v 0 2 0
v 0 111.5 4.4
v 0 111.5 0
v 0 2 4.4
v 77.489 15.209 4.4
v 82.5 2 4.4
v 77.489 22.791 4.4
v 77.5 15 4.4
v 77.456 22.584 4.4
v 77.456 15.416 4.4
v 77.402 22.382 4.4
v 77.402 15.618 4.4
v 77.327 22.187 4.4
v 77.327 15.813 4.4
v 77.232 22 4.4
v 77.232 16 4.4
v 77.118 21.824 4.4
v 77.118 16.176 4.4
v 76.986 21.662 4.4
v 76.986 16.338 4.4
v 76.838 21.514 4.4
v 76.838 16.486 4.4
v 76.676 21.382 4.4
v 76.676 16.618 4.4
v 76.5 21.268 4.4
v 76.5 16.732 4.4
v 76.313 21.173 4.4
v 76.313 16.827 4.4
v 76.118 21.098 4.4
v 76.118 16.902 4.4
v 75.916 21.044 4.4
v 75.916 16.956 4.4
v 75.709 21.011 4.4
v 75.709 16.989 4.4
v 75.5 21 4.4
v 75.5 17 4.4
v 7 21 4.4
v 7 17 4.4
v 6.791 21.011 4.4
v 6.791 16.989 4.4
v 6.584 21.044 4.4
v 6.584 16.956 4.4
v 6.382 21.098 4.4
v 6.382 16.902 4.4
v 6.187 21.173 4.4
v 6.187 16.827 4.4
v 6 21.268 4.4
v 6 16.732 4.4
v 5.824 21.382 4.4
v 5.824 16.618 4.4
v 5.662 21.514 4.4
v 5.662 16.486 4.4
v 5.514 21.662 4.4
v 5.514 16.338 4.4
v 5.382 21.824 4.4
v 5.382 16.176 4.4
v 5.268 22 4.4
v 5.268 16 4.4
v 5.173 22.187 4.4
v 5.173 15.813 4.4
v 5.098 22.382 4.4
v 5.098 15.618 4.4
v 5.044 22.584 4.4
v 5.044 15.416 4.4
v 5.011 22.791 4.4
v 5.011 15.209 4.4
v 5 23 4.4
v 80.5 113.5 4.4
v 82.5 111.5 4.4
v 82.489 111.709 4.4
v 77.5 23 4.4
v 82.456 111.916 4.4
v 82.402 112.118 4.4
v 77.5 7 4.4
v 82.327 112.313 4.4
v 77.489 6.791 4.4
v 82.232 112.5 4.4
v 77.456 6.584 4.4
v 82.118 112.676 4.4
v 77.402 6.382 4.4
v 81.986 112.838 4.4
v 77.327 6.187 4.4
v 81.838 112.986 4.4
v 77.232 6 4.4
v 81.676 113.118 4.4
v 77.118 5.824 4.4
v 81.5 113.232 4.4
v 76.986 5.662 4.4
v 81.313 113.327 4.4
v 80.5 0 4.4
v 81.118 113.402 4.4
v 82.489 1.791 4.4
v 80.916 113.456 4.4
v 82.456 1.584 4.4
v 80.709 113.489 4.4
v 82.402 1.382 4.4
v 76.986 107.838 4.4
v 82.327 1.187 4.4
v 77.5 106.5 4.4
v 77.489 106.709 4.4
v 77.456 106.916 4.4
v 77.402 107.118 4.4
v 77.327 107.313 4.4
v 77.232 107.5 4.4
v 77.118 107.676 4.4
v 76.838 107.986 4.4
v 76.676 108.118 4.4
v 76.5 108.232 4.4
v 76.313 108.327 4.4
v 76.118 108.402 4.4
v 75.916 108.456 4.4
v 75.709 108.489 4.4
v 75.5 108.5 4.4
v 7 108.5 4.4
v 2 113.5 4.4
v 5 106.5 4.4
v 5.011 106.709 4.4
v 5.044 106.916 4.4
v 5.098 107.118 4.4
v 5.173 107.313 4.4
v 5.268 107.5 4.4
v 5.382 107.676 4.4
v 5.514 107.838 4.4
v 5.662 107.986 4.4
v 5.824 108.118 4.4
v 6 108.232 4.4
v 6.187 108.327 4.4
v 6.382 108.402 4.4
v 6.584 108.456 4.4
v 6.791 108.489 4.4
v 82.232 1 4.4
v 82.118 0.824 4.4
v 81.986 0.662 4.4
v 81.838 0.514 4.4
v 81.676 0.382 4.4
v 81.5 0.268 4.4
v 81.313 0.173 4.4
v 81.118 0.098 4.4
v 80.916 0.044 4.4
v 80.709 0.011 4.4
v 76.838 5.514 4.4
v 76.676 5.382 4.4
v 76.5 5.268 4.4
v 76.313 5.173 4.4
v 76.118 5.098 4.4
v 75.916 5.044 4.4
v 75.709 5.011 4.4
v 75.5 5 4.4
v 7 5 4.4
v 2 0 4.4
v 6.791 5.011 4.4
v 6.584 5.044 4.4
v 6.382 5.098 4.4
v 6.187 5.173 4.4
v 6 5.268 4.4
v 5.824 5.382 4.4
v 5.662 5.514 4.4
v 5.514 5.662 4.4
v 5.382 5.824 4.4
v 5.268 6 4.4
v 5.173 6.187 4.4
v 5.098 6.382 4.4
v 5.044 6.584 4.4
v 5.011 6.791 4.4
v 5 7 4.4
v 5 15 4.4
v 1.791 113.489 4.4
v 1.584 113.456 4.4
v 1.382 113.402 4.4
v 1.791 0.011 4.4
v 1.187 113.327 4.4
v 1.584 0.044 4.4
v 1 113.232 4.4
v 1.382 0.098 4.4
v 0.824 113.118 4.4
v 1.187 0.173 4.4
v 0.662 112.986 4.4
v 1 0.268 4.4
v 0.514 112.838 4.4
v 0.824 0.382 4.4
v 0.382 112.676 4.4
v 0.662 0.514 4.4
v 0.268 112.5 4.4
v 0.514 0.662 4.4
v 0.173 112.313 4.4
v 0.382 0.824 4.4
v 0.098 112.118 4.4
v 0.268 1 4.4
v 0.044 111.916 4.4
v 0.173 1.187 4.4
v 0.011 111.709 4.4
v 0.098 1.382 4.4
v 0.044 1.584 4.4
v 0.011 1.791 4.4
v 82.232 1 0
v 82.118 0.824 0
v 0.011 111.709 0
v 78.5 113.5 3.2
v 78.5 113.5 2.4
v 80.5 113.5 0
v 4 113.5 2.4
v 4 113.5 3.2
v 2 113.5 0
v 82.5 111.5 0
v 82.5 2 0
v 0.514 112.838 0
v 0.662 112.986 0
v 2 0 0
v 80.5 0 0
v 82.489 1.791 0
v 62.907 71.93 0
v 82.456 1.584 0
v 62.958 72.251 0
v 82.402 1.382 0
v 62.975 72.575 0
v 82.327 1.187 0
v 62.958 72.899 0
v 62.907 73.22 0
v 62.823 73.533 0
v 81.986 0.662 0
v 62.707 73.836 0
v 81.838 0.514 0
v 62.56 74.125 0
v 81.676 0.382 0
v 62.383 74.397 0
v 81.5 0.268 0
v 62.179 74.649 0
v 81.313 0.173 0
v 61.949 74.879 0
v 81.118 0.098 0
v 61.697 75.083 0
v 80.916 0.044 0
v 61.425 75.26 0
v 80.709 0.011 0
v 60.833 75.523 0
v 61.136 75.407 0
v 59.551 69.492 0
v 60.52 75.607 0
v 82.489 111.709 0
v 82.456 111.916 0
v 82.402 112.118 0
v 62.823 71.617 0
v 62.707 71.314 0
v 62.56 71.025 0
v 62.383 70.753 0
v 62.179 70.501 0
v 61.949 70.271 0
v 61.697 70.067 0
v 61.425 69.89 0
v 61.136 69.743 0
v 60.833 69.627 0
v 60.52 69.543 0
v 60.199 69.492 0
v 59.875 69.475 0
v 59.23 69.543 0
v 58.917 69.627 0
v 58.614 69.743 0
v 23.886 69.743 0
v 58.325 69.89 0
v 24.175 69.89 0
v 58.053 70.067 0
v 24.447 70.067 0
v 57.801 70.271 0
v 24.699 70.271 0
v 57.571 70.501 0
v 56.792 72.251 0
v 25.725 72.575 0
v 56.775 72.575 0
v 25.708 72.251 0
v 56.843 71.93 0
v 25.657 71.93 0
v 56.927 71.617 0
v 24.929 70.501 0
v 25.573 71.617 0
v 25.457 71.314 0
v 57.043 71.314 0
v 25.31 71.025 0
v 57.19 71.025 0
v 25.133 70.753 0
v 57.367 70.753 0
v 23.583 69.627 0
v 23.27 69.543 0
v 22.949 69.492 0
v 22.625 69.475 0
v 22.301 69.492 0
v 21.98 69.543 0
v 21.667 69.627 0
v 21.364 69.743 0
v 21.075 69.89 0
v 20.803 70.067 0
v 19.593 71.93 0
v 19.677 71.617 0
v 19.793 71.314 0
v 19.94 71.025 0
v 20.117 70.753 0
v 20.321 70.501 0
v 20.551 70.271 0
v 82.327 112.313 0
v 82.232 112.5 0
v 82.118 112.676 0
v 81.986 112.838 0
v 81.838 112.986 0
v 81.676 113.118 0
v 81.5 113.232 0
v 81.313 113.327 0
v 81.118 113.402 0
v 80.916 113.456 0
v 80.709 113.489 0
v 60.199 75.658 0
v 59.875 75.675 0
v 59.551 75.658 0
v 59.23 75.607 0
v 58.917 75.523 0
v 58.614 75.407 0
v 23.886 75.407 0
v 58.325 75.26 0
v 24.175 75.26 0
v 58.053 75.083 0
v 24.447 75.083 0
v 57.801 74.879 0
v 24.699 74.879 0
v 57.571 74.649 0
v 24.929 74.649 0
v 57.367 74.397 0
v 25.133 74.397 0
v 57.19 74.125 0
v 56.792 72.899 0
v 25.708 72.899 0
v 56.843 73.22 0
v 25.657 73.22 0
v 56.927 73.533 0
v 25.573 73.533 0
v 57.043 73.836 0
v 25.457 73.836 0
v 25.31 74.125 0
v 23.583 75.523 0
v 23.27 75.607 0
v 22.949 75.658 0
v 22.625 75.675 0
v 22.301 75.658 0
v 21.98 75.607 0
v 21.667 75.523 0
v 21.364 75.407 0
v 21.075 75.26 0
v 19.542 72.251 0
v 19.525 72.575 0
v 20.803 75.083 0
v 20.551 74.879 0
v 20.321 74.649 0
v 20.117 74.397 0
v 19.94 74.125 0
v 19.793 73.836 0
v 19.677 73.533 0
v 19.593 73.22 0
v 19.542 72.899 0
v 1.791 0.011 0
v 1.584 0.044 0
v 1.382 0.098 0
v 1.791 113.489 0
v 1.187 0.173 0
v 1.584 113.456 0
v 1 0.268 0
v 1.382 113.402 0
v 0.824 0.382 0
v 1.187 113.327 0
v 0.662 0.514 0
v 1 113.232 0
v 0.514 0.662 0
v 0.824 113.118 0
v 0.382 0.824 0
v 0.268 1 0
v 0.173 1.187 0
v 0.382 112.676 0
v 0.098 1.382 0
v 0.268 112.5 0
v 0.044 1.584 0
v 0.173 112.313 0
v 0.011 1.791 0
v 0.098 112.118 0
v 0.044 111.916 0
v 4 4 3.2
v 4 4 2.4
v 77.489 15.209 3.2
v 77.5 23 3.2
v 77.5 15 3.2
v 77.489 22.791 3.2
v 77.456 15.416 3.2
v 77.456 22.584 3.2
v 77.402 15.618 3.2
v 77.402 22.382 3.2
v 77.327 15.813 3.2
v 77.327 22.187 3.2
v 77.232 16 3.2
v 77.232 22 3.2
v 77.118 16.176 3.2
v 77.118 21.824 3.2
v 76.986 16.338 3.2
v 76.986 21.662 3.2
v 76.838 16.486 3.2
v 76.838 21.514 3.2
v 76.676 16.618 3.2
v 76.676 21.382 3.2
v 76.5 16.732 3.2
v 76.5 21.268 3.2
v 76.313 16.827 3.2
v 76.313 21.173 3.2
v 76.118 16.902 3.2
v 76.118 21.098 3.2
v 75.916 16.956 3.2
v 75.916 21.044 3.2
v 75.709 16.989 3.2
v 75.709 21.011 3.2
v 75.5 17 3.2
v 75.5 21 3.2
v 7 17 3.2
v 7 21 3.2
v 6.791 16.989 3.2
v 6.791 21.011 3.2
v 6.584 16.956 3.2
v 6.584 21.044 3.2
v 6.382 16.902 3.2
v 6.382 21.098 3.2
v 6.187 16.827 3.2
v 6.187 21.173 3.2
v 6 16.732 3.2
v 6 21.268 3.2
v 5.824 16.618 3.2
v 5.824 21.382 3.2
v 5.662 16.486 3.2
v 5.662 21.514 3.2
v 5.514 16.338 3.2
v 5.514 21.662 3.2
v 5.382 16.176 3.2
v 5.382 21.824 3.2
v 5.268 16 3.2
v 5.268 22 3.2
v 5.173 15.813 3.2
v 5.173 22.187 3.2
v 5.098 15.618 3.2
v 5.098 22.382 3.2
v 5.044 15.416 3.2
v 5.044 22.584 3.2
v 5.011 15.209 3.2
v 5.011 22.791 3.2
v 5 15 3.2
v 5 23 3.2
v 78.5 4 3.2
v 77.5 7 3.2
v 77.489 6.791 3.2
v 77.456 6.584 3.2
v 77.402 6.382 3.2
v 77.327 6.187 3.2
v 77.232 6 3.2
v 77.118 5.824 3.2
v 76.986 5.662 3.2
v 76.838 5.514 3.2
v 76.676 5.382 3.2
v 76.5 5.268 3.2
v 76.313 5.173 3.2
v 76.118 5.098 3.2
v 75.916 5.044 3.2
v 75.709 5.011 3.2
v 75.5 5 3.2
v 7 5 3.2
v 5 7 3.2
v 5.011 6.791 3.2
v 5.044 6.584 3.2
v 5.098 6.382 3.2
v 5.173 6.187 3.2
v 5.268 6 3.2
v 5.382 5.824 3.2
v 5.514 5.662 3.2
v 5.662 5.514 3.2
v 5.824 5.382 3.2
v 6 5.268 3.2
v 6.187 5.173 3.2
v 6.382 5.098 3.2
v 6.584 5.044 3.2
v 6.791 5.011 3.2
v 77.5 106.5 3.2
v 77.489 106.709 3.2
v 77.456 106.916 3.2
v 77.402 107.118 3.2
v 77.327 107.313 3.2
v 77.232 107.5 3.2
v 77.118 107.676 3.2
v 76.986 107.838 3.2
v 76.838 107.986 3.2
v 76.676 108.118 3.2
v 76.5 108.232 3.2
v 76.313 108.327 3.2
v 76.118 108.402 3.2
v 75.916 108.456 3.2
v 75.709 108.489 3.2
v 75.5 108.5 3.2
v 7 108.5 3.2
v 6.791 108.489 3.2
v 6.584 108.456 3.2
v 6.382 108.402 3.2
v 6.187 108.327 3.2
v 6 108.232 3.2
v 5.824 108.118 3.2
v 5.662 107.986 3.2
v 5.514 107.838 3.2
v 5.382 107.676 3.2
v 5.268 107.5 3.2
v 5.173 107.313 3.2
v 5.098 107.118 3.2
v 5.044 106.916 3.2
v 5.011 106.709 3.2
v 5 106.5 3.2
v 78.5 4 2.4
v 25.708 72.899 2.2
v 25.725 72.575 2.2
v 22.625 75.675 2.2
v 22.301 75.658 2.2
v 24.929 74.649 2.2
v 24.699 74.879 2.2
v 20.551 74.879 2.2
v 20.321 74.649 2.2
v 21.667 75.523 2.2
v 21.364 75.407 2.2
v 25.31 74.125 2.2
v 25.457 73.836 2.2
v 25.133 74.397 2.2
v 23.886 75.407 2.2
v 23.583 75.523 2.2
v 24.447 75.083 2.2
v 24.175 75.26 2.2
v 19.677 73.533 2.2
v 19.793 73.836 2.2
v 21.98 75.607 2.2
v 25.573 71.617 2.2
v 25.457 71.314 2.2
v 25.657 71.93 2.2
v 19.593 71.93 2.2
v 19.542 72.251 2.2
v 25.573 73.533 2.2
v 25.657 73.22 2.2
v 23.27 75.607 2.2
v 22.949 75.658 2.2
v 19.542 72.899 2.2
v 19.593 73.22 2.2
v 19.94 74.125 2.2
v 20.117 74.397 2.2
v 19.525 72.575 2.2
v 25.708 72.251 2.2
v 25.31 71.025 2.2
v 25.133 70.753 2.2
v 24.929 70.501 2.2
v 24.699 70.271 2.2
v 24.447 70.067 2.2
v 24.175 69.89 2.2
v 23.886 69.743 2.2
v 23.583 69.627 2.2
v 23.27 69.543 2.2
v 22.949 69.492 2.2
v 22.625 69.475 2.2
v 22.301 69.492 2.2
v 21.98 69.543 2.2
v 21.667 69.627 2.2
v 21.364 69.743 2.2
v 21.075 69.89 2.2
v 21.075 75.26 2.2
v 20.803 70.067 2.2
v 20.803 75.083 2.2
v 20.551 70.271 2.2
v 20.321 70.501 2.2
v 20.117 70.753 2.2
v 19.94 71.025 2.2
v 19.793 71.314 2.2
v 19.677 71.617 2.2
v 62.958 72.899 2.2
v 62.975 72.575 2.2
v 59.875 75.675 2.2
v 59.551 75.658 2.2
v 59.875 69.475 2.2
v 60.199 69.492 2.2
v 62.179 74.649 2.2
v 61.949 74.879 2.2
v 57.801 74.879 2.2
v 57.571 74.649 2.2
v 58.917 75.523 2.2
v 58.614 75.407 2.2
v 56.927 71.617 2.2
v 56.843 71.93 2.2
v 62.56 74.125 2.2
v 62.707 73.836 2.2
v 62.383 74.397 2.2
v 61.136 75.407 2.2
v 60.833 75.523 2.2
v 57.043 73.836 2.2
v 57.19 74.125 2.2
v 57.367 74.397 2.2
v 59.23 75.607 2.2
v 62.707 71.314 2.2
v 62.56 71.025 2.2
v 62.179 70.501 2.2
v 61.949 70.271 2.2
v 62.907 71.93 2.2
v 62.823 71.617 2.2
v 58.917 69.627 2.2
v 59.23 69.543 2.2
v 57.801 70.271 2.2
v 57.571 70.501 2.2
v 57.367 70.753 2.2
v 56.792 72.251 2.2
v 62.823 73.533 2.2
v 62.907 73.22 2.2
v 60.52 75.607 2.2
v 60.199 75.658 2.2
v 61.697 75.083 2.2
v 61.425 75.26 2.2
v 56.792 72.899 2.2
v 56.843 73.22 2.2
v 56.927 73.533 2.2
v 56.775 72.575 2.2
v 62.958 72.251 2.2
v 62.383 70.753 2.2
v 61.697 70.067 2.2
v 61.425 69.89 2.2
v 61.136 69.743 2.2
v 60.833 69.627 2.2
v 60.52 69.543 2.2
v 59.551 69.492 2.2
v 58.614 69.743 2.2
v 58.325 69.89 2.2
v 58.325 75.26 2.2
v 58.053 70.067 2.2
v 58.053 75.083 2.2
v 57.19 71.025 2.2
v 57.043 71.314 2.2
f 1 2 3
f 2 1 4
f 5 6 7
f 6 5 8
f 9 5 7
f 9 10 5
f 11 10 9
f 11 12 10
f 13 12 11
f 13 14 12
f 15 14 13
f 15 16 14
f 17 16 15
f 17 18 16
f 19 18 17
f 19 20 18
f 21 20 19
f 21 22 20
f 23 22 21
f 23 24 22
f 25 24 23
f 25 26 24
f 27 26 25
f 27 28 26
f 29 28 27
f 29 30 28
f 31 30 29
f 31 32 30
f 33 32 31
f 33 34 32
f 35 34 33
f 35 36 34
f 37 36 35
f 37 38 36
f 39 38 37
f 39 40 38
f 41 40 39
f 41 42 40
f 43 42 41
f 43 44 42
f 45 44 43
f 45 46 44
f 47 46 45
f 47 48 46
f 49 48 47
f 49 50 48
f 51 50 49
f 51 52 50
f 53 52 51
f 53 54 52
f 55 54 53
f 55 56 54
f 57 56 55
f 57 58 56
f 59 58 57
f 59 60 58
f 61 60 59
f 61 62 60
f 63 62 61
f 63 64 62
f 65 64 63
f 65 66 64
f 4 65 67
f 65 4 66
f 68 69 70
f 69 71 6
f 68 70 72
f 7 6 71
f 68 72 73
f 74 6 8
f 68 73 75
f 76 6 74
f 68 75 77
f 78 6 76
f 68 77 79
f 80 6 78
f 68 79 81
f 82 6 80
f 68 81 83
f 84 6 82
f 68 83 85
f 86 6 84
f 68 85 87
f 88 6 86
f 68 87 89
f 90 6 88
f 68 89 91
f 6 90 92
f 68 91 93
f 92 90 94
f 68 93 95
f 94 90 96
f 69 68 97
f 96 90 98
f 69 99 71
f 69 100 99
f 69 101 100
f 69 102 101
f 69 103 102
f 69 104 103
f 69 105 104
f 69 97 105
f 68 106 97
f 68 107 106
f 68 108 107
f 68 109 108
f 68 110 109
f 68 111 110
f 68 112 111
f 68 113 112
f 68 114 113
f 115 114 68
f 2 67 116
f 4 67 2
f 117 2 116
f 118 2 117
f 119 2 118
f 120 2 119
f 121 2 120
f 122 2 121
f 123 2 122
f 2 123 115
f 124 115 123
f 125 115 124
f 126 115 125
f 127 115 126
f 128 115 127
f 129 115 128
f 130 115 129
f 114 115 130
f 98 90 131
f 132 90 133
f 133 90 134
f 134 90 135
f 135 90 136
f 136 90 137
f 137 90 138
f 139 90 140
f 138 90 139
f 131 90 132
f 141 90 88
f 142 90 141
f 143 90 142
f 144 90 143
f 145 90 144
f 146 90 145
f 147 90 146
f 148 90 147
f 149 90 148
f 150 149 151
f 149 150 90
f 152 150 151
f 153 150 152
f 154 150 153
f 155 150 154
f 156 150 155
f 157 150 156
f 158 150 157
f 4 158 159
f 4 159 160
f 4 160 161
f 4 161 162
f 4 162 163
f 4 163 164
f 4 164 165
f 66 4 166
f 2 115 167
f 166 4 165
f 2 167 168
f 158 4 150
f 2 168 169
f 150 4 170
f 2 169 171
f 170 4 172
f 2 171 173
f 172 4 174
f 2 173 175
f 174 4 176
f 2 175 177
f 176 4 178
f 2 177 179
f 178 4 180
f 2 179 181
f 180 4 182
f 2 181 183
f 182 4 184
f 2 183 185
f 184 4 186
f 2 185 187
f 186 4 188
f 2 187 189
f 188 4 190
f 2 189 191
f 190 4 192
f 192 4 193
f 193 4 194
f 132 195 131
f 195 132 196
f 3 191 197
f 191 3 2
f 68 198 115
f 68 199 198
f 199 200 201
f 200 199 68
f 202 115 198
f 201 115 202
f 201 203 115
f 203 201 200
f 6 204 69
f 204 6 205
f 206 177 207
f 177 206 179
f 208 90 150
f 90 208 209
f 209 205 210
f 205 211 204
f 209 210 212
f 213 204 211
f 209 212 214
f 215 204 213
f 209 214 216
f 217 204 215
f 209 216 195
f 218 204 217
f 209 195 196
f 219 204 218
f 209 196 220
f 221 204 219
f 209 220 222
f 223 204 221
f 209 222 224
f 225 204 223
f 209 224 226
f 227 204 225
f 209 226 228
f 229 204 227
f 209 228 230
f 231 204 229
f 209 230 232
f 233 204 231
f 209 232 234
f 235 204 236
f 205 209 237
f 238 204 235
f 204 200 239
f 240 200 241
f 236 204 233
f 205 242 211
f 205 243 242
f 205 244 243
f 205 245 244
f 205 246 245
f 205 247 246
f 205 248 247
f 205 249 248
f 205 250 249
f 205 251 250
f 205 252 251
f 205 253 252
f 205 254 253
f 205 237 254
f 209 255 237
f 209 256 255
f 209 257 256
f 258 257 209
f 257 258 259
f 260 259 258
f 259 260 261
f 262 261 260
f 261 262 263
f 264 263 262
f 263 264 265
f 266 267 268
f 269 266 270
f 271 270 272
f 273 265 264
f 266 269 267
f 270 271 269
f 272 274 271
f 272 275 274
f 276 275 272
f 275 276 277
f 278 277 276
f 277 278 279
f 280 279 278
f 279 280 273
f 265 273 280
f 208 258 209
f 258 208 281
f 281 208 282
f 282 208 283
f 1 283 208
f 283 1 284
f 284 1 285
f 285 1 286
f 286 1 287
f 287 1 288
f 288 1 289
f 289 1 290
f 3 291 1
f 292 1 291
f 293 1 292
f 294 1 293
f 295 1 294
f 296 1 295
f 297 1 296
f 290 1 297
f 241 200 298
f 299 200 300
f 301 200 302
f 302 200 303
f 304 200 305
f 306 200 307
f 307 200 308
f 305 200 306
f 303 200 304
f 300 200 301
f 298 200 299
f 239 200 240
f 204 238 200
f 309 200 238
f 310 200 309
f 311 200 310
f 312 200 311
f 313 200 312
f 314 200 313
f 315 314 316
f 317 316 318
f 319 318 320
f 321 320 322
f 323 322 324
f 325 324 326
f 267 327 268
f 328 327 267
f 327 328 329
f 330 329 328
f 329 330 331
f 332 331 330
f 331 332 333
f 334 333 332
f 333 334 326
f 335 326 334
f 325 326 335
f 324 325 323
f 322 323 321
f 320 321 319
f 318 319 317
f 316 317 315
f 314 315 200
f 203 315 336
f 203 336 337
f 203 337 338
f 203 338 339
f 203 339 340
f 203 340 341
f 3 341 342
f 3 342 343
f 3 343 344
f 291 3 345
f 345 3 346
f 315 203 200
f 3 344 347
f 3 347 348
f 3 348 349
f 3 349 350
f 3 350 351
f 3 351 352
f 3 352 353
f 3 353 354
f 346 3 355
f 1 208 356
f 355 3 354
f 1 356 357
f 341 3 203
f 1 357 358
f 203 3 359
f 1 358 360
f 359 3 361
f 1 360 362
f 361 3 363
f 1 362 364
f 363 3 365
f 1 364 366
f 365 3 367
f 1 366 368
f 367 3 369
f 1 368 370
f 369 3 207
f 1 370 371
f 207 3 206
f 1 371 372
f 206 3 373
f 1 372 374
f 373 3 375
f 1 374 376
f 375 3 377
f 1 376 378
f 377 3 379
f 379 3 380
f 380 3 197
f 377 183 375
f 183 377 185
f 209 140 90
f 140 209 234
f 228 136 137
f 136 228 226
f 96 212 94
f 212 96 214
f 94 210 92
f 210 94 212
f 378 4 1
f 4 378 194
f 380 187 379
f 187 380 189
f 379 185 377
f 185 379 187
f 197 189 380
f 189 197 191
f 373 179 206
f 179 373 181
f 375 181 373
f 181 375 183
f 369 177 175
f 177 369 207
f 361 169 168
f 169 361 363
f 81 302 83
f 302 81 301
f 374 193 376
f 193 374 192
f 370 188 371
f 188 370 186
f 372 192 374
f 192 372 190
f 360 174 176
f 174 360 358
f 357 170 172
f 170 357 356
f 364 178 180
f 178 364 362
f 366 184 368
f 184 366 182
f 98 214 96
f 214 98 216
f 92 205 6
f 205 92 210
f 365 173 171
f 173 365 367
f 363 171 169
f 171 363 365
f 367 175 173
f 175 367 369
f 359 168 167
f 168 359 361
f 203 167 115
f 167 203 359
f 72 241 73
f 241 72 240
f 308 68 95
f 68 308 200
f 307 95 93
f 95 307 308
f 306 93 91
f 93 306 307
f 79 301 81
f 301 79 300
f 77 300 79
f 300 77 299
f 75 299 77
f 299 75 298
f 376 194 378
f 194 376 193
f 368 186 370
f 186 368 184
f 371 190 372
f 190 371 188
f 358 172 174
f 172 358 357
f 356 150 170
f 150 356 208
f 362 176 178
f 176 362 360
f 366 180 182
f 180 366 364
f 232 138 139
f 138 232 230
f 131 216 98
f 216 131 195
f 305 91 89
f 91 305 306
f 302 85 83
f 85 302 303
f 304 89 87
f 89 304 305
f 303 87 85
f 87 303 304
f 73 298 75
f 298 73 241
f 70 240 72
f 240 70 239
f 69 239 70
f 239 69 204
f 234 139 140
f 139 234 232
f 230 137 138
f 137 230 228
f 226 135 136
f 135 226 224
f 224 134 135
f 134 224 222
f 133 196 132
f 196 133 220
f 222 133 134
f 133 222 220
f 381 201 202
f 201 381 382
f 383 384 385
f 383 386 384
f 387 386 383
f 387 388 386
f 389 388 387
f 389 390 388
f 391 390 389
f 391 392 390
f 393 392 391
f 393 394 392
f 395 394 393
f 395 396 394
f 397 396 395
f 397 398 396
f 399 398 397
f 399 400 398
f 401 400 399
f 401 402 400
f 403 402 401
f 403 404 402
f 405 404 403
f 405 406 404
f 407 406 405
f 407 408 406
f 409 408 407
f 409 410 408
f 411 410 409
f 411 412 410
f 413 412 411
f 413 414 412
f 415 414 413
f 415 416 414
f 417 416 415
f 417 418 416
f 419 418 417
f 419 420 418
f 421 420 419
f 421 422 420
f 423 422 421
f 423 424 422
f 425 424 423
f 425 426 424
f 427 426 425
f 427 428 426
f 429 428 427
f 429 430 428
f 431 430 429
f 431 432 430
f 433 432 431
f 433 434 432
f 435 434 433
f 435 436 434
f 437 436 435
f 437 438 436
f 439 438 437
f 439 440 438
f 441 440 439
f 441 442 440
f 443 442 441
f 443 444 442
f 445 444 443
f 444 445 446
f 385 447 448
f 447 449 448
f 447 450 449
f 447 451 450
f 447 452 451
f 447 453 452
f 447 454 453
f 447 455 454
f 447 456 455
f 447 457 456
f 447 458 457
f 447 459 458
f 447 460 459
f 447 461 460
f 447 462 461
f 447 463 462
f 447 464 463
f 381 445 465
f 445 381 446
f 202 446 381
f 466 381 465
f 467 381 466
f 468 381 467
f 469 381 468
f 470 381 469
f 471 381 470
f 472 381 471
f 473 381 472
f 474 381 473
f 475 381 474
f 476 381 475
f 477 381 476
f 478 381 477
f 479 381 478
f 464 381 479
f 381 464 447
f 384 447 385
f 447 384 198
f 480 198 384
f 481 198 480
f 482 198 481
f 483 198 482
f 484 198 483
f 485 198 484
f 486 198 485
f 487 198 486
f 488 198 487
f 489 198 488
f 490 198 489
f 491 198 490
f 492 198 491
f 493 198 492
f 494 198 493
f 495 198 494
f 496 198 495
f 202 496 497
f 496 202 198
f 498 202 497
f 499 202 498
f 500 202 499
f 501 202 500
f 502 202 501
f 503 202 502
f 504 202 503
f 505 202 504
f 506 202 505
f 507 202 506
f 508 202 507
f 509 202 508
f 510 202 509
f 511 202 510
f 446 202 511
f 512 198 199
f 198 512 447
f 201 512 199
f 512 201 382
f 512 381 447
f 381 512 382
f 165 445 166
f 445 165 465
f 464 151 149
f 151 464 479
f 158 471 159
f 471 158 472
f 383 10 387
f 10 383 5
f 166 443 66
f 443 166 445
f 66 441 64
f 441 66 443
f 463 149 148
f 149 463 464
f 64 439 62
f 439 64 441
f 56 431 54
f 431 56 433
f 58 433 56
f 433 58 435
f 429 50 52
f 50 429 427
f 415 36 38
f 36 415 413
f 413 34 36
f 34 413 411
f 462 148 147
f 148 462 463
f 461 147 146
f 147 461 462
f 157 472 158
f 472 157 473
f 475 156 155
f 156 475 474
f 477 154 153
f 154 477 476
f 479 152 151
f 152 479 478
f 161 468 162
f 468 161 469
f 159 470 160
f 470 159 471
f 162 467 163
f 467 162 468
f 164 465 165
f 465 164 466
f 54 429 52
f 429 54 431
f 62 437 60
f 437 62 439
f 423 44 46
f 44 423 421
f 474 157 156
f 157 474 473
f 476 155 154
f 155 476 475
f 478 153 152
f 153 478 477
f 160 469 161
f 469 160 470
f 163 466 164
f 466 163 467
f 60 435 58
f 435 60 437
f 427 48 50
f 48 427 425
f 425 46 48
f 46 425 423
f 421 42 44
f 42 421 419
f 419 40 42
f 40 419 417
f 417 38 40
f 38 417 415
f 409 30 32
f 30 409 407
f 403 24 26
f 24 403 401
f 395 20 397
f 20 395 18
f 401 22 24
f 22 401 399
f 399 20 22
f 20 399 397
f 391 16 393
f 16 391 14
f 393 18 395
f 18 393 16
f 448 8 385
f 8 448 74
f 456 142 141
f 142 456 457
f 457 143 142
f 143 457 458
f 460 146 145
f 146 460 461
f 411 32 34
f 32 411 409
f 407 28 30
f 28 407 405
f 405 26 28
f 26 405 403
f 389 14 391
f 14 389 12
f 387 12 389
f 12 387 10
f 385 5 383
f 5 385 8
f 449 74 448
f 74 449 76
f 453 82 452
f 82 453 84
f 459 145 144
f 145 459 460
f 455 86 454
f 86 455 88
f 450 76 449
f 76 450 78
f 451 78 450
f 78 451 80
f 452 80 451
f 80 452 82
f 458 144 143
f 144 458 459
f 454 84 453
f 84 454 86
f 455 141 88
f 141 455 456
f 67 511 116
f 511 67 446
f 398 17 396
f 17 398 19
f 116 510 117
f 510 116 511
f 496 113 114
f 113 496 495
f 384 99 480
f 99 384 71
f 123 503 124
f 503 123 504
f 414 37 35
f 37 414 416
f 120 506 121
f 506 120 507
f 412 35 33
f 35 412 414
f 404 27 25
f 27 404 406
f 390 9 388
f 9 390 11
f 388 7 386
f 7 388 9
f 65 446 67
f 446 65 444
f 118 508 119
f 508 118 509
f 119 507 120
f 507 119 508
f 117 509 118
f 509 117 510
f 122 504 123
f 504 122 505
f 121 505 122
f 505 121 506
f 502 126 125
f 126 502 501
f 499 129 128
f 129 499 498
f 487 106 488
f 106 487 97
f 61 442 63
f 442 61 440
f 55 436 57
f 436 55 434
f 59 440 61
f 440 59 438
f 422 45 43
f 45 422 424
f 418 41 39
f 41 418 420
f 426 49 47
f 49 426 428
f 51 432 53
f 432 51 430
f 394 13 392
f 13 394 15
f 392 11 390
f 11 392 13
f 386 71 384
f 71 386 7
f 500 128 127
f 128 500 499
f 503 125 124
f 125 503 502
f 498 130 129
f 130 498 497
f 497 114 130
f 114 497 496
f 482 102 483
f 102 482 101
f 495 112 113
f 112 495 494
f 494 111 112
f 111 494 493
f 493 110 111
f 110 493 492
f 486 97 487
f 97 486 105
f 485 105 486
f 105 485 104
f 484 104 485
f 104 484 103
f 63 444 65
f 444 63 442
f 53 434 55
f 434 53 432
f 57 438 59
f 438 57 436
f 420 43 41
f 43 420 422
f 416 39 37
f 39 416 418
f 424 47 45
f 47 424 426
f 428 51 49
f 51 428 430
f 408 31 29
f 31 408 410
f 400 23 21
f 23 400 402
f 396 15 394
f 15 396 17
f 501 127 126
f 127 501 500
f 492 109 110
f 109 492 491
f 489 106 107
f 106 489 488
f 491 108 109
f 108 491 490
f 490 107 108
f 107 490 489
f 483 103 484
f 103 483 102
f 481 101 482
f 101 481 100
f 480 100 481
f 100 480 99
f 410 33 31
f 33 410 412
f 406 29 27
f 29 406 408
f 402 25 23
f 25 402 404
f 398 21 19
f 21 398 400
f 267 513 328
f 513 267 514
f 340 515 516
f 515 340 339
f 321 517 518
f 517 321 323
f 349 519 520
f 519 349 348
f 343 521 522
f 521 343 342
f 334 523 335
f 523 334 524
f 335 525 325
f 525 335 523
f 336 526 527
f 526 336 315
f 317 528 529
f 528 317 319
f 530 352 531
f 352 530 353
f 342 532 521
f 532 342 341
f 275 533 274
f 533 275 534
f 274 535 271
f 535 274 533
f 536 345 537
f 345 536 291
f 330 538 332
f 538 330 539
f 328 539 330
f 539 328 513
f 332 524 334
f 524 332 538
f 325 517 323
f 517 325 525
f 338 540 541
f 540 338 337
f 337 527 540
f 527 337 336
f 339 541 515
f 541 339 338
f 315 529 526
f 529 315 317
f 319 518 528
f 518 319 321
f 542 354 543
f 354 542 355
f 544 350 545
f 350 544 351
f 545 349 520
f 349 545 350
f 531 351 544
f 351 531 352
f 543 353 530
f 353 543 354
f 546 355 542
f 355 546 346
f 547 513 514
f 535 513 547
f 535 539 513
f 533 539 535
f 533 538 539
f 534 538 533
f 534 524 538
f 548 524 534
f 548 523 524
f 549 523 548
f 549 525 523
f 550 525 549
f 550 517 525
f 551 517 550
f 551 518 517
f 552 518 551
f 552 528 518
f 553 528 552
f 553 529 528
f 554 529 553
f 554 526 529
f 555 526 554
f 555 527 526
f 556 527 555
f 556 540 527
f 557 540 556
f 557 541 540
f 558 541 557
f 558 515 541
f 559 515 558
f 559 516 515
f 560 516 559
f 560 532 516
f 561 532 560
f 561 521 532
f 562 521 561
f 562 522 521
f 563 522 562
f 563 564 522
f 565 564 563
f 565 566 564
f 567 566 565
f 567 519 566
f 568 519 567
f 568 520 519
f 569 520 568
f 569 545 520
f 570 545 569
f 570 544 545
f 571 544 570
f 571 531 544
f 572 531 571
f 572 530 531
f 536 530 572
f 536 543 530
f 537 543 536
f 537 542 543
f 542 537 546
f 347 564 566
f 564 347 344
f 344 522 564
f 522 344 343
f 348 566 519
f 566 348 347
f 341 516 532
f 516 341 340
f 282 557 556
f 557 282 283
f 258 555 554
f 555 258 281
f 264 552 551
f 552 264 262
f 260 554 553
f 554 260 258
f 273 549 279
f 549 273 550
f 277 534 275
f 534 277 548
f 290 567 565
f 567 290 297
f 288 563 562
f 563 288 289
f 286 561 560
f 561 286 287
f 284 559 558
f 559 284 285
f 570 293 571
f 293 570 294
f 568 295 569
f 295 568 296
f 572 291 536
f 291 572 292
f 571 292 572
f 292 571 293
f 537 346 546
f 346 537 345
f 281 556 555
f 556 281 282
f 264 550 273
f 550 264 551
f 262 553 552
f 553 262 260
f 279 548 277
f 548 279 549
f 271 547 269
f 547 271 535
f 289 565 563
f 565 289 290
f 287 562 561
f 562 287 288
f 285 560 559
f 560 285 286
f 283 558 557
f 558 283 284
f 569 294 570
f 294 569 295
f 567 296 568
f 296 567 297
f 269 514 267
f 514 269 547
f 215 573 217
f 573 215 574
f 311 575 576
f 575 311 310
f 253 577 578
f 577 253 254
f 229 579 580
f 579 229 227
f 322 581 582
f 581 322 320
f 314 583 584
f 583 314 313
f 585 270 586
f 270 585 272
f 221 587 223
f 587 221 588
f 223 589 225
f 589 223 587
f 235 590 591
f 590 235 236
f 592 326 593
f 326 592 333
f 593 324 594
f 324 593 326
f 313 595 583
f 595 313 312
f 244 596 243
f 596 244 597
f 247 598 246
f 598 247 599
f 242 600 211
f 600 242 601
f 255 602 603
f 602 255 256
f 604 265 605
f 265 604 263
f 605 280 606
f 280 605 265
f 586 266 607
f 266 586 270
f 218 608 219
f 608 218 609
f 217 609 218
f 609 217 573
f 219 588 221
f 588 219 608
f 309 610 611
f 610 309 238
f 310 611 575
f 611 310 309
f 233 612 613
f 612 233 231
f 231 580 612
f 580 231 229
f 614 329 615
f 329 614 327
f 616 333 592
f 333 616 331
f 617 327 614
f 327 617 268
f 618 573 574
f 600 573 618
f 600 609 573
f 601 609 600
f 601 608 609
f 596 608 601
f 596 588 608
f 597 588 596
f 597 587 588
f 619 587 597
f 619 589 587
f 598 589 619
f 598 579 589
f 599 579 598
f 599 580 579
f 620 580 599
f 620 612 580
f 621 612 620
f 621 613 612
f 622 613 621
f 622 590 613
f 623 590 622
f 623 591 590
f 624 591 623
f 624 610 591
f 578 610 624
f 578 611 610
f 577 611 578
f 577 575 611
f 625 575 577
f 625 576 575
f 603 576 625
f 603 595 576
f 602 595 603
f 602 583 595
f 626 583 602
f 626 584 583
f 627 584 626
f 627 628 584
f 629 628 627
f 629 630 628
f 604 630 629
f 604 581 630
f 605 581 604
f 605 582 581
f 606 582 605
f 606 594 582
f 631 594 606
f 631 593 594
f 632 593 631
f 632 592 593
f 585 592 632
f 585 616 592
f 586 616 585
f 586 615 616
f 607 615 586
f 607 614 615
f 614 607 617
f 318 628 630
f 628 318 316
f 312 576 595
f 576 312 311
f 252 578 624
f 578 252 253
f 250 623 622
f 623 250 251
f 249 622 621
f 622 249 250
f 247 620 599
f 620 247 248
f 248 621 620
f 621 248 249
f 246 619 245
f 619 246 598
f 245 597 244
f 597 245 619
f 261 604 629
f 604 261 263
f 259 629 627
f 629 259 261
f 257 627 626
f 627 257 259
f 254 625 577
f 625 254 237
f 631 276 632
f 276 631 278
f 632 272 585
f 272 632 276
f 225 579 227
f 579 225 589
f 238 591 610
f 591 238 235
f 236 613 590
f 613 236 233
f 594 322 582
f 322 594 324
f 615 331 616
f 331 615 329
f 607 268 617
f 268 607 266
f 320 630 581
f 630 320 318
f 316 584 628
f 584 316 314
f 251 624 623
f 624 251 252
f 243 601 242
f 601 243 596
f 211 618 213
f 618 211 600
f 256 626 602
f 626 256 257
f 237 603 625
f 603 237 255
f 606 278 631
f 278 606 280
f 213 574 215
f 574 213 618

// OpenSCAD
// DIY Polaroid Magnetic Fridge Frame - Solid Back (2 Magnets)
// Designed for 74.25 x 105 mm paper (A4 divided by 8)

// Paper dimensions (with 0.25mm sliding clearance)
paper_w = 74.5; 
paper_h = 105.5;

// Border Settings
border_w = 4.0;    // 4mm border all around to match the middle bar
corner_r = 2.0;    // Fillet radius for outer shell and cutouts

// Thickness Settings
front_t = 1.2;     // Thickness of the front face
slot_t = 0.8;      // Thickness of the empty slot for the paper
back_t = 2.4;      // Thickness of the back plate (holds the magnets)
total_t = front_t + slot_t + back_t;

// Caption & Mid-bar Heights
caption_h = 12.0;
mid_bar_h = 4.0;   // 4mm divider between photo and caption

// Window Dimensions
win_w = paper_w - 2 * (border_w - 3.0); // Derived to keep consistent internal framing
win_photo_h = paper_h - caption_h - mid_bar_h - 2 * (border_w - 3.0);

// Magnet Dimensions (Standard 6x2mm craft magnets + clearance)
mag_d = 6.2;       
mag_depth = 2.2;

$fn = 60;

// Helper module: 2.5D rounded rectangular prism
module rounded_box(w, h, depth, r) {
    hull() {
        translate([r, r, 0]) cylinder(r=r, h=depth);
        translate([w - r, r, 0]) cylinder(r=r, h=depth);
        translate([r, h - r, 0]) cylinder(r=r, h=depth);
        translate([w - r, h - r, 0]) cylinder(r=r, h=depth);
    }
}

module polaroid_frame() {
    outer_w = paper_w + 2 * border_w;
    outer_h = paper_h + 2 * border_w;

    difference() {
        // 1. Main Outer Shell with rounded corners
        rounded_box(outer_w, outer_h, total_t, corner_r);
        
        // 2. Paper Slot (Top-loading opening)
        translate([border_w, border_w, back_t])
            cube([paper_w, paper_h + border_w + 1, slot_t]);
            
        // 3. Rounded Front Caption Window (Bottom)
        translate([border_w + 1, border_w + 1, back_t + slot_t - 0.1])
            rounded_box(paper_w - 2, caption_h, front_t + 0.2, corner_r);
            
        // 4. Rounded Front Photo Window (Top)
        translate([border_w + 1, border_w + 1 + caption_h + mid_bar_h, back_t + slot_t - 0.1])
            rounded_box(paper_w - 2, win_photo_h, front_t + 0.2, corner_r);
            
        // 5. Two Magnet Sockets (Solid rear plate)
        translate([border_w + paper_w * 0.25, border_w + paper_h * 0.65, -0.1])
            cylinder(d=mag_d, h=mag_depth + 0.1);
        translate([border_w + paper_w * 0.75, border_w + paper_h * 0.65, -0.1])
            cylinder(d=mag_d, h=mag_depth + 0.1);
    }
}

polaroid_frame();
